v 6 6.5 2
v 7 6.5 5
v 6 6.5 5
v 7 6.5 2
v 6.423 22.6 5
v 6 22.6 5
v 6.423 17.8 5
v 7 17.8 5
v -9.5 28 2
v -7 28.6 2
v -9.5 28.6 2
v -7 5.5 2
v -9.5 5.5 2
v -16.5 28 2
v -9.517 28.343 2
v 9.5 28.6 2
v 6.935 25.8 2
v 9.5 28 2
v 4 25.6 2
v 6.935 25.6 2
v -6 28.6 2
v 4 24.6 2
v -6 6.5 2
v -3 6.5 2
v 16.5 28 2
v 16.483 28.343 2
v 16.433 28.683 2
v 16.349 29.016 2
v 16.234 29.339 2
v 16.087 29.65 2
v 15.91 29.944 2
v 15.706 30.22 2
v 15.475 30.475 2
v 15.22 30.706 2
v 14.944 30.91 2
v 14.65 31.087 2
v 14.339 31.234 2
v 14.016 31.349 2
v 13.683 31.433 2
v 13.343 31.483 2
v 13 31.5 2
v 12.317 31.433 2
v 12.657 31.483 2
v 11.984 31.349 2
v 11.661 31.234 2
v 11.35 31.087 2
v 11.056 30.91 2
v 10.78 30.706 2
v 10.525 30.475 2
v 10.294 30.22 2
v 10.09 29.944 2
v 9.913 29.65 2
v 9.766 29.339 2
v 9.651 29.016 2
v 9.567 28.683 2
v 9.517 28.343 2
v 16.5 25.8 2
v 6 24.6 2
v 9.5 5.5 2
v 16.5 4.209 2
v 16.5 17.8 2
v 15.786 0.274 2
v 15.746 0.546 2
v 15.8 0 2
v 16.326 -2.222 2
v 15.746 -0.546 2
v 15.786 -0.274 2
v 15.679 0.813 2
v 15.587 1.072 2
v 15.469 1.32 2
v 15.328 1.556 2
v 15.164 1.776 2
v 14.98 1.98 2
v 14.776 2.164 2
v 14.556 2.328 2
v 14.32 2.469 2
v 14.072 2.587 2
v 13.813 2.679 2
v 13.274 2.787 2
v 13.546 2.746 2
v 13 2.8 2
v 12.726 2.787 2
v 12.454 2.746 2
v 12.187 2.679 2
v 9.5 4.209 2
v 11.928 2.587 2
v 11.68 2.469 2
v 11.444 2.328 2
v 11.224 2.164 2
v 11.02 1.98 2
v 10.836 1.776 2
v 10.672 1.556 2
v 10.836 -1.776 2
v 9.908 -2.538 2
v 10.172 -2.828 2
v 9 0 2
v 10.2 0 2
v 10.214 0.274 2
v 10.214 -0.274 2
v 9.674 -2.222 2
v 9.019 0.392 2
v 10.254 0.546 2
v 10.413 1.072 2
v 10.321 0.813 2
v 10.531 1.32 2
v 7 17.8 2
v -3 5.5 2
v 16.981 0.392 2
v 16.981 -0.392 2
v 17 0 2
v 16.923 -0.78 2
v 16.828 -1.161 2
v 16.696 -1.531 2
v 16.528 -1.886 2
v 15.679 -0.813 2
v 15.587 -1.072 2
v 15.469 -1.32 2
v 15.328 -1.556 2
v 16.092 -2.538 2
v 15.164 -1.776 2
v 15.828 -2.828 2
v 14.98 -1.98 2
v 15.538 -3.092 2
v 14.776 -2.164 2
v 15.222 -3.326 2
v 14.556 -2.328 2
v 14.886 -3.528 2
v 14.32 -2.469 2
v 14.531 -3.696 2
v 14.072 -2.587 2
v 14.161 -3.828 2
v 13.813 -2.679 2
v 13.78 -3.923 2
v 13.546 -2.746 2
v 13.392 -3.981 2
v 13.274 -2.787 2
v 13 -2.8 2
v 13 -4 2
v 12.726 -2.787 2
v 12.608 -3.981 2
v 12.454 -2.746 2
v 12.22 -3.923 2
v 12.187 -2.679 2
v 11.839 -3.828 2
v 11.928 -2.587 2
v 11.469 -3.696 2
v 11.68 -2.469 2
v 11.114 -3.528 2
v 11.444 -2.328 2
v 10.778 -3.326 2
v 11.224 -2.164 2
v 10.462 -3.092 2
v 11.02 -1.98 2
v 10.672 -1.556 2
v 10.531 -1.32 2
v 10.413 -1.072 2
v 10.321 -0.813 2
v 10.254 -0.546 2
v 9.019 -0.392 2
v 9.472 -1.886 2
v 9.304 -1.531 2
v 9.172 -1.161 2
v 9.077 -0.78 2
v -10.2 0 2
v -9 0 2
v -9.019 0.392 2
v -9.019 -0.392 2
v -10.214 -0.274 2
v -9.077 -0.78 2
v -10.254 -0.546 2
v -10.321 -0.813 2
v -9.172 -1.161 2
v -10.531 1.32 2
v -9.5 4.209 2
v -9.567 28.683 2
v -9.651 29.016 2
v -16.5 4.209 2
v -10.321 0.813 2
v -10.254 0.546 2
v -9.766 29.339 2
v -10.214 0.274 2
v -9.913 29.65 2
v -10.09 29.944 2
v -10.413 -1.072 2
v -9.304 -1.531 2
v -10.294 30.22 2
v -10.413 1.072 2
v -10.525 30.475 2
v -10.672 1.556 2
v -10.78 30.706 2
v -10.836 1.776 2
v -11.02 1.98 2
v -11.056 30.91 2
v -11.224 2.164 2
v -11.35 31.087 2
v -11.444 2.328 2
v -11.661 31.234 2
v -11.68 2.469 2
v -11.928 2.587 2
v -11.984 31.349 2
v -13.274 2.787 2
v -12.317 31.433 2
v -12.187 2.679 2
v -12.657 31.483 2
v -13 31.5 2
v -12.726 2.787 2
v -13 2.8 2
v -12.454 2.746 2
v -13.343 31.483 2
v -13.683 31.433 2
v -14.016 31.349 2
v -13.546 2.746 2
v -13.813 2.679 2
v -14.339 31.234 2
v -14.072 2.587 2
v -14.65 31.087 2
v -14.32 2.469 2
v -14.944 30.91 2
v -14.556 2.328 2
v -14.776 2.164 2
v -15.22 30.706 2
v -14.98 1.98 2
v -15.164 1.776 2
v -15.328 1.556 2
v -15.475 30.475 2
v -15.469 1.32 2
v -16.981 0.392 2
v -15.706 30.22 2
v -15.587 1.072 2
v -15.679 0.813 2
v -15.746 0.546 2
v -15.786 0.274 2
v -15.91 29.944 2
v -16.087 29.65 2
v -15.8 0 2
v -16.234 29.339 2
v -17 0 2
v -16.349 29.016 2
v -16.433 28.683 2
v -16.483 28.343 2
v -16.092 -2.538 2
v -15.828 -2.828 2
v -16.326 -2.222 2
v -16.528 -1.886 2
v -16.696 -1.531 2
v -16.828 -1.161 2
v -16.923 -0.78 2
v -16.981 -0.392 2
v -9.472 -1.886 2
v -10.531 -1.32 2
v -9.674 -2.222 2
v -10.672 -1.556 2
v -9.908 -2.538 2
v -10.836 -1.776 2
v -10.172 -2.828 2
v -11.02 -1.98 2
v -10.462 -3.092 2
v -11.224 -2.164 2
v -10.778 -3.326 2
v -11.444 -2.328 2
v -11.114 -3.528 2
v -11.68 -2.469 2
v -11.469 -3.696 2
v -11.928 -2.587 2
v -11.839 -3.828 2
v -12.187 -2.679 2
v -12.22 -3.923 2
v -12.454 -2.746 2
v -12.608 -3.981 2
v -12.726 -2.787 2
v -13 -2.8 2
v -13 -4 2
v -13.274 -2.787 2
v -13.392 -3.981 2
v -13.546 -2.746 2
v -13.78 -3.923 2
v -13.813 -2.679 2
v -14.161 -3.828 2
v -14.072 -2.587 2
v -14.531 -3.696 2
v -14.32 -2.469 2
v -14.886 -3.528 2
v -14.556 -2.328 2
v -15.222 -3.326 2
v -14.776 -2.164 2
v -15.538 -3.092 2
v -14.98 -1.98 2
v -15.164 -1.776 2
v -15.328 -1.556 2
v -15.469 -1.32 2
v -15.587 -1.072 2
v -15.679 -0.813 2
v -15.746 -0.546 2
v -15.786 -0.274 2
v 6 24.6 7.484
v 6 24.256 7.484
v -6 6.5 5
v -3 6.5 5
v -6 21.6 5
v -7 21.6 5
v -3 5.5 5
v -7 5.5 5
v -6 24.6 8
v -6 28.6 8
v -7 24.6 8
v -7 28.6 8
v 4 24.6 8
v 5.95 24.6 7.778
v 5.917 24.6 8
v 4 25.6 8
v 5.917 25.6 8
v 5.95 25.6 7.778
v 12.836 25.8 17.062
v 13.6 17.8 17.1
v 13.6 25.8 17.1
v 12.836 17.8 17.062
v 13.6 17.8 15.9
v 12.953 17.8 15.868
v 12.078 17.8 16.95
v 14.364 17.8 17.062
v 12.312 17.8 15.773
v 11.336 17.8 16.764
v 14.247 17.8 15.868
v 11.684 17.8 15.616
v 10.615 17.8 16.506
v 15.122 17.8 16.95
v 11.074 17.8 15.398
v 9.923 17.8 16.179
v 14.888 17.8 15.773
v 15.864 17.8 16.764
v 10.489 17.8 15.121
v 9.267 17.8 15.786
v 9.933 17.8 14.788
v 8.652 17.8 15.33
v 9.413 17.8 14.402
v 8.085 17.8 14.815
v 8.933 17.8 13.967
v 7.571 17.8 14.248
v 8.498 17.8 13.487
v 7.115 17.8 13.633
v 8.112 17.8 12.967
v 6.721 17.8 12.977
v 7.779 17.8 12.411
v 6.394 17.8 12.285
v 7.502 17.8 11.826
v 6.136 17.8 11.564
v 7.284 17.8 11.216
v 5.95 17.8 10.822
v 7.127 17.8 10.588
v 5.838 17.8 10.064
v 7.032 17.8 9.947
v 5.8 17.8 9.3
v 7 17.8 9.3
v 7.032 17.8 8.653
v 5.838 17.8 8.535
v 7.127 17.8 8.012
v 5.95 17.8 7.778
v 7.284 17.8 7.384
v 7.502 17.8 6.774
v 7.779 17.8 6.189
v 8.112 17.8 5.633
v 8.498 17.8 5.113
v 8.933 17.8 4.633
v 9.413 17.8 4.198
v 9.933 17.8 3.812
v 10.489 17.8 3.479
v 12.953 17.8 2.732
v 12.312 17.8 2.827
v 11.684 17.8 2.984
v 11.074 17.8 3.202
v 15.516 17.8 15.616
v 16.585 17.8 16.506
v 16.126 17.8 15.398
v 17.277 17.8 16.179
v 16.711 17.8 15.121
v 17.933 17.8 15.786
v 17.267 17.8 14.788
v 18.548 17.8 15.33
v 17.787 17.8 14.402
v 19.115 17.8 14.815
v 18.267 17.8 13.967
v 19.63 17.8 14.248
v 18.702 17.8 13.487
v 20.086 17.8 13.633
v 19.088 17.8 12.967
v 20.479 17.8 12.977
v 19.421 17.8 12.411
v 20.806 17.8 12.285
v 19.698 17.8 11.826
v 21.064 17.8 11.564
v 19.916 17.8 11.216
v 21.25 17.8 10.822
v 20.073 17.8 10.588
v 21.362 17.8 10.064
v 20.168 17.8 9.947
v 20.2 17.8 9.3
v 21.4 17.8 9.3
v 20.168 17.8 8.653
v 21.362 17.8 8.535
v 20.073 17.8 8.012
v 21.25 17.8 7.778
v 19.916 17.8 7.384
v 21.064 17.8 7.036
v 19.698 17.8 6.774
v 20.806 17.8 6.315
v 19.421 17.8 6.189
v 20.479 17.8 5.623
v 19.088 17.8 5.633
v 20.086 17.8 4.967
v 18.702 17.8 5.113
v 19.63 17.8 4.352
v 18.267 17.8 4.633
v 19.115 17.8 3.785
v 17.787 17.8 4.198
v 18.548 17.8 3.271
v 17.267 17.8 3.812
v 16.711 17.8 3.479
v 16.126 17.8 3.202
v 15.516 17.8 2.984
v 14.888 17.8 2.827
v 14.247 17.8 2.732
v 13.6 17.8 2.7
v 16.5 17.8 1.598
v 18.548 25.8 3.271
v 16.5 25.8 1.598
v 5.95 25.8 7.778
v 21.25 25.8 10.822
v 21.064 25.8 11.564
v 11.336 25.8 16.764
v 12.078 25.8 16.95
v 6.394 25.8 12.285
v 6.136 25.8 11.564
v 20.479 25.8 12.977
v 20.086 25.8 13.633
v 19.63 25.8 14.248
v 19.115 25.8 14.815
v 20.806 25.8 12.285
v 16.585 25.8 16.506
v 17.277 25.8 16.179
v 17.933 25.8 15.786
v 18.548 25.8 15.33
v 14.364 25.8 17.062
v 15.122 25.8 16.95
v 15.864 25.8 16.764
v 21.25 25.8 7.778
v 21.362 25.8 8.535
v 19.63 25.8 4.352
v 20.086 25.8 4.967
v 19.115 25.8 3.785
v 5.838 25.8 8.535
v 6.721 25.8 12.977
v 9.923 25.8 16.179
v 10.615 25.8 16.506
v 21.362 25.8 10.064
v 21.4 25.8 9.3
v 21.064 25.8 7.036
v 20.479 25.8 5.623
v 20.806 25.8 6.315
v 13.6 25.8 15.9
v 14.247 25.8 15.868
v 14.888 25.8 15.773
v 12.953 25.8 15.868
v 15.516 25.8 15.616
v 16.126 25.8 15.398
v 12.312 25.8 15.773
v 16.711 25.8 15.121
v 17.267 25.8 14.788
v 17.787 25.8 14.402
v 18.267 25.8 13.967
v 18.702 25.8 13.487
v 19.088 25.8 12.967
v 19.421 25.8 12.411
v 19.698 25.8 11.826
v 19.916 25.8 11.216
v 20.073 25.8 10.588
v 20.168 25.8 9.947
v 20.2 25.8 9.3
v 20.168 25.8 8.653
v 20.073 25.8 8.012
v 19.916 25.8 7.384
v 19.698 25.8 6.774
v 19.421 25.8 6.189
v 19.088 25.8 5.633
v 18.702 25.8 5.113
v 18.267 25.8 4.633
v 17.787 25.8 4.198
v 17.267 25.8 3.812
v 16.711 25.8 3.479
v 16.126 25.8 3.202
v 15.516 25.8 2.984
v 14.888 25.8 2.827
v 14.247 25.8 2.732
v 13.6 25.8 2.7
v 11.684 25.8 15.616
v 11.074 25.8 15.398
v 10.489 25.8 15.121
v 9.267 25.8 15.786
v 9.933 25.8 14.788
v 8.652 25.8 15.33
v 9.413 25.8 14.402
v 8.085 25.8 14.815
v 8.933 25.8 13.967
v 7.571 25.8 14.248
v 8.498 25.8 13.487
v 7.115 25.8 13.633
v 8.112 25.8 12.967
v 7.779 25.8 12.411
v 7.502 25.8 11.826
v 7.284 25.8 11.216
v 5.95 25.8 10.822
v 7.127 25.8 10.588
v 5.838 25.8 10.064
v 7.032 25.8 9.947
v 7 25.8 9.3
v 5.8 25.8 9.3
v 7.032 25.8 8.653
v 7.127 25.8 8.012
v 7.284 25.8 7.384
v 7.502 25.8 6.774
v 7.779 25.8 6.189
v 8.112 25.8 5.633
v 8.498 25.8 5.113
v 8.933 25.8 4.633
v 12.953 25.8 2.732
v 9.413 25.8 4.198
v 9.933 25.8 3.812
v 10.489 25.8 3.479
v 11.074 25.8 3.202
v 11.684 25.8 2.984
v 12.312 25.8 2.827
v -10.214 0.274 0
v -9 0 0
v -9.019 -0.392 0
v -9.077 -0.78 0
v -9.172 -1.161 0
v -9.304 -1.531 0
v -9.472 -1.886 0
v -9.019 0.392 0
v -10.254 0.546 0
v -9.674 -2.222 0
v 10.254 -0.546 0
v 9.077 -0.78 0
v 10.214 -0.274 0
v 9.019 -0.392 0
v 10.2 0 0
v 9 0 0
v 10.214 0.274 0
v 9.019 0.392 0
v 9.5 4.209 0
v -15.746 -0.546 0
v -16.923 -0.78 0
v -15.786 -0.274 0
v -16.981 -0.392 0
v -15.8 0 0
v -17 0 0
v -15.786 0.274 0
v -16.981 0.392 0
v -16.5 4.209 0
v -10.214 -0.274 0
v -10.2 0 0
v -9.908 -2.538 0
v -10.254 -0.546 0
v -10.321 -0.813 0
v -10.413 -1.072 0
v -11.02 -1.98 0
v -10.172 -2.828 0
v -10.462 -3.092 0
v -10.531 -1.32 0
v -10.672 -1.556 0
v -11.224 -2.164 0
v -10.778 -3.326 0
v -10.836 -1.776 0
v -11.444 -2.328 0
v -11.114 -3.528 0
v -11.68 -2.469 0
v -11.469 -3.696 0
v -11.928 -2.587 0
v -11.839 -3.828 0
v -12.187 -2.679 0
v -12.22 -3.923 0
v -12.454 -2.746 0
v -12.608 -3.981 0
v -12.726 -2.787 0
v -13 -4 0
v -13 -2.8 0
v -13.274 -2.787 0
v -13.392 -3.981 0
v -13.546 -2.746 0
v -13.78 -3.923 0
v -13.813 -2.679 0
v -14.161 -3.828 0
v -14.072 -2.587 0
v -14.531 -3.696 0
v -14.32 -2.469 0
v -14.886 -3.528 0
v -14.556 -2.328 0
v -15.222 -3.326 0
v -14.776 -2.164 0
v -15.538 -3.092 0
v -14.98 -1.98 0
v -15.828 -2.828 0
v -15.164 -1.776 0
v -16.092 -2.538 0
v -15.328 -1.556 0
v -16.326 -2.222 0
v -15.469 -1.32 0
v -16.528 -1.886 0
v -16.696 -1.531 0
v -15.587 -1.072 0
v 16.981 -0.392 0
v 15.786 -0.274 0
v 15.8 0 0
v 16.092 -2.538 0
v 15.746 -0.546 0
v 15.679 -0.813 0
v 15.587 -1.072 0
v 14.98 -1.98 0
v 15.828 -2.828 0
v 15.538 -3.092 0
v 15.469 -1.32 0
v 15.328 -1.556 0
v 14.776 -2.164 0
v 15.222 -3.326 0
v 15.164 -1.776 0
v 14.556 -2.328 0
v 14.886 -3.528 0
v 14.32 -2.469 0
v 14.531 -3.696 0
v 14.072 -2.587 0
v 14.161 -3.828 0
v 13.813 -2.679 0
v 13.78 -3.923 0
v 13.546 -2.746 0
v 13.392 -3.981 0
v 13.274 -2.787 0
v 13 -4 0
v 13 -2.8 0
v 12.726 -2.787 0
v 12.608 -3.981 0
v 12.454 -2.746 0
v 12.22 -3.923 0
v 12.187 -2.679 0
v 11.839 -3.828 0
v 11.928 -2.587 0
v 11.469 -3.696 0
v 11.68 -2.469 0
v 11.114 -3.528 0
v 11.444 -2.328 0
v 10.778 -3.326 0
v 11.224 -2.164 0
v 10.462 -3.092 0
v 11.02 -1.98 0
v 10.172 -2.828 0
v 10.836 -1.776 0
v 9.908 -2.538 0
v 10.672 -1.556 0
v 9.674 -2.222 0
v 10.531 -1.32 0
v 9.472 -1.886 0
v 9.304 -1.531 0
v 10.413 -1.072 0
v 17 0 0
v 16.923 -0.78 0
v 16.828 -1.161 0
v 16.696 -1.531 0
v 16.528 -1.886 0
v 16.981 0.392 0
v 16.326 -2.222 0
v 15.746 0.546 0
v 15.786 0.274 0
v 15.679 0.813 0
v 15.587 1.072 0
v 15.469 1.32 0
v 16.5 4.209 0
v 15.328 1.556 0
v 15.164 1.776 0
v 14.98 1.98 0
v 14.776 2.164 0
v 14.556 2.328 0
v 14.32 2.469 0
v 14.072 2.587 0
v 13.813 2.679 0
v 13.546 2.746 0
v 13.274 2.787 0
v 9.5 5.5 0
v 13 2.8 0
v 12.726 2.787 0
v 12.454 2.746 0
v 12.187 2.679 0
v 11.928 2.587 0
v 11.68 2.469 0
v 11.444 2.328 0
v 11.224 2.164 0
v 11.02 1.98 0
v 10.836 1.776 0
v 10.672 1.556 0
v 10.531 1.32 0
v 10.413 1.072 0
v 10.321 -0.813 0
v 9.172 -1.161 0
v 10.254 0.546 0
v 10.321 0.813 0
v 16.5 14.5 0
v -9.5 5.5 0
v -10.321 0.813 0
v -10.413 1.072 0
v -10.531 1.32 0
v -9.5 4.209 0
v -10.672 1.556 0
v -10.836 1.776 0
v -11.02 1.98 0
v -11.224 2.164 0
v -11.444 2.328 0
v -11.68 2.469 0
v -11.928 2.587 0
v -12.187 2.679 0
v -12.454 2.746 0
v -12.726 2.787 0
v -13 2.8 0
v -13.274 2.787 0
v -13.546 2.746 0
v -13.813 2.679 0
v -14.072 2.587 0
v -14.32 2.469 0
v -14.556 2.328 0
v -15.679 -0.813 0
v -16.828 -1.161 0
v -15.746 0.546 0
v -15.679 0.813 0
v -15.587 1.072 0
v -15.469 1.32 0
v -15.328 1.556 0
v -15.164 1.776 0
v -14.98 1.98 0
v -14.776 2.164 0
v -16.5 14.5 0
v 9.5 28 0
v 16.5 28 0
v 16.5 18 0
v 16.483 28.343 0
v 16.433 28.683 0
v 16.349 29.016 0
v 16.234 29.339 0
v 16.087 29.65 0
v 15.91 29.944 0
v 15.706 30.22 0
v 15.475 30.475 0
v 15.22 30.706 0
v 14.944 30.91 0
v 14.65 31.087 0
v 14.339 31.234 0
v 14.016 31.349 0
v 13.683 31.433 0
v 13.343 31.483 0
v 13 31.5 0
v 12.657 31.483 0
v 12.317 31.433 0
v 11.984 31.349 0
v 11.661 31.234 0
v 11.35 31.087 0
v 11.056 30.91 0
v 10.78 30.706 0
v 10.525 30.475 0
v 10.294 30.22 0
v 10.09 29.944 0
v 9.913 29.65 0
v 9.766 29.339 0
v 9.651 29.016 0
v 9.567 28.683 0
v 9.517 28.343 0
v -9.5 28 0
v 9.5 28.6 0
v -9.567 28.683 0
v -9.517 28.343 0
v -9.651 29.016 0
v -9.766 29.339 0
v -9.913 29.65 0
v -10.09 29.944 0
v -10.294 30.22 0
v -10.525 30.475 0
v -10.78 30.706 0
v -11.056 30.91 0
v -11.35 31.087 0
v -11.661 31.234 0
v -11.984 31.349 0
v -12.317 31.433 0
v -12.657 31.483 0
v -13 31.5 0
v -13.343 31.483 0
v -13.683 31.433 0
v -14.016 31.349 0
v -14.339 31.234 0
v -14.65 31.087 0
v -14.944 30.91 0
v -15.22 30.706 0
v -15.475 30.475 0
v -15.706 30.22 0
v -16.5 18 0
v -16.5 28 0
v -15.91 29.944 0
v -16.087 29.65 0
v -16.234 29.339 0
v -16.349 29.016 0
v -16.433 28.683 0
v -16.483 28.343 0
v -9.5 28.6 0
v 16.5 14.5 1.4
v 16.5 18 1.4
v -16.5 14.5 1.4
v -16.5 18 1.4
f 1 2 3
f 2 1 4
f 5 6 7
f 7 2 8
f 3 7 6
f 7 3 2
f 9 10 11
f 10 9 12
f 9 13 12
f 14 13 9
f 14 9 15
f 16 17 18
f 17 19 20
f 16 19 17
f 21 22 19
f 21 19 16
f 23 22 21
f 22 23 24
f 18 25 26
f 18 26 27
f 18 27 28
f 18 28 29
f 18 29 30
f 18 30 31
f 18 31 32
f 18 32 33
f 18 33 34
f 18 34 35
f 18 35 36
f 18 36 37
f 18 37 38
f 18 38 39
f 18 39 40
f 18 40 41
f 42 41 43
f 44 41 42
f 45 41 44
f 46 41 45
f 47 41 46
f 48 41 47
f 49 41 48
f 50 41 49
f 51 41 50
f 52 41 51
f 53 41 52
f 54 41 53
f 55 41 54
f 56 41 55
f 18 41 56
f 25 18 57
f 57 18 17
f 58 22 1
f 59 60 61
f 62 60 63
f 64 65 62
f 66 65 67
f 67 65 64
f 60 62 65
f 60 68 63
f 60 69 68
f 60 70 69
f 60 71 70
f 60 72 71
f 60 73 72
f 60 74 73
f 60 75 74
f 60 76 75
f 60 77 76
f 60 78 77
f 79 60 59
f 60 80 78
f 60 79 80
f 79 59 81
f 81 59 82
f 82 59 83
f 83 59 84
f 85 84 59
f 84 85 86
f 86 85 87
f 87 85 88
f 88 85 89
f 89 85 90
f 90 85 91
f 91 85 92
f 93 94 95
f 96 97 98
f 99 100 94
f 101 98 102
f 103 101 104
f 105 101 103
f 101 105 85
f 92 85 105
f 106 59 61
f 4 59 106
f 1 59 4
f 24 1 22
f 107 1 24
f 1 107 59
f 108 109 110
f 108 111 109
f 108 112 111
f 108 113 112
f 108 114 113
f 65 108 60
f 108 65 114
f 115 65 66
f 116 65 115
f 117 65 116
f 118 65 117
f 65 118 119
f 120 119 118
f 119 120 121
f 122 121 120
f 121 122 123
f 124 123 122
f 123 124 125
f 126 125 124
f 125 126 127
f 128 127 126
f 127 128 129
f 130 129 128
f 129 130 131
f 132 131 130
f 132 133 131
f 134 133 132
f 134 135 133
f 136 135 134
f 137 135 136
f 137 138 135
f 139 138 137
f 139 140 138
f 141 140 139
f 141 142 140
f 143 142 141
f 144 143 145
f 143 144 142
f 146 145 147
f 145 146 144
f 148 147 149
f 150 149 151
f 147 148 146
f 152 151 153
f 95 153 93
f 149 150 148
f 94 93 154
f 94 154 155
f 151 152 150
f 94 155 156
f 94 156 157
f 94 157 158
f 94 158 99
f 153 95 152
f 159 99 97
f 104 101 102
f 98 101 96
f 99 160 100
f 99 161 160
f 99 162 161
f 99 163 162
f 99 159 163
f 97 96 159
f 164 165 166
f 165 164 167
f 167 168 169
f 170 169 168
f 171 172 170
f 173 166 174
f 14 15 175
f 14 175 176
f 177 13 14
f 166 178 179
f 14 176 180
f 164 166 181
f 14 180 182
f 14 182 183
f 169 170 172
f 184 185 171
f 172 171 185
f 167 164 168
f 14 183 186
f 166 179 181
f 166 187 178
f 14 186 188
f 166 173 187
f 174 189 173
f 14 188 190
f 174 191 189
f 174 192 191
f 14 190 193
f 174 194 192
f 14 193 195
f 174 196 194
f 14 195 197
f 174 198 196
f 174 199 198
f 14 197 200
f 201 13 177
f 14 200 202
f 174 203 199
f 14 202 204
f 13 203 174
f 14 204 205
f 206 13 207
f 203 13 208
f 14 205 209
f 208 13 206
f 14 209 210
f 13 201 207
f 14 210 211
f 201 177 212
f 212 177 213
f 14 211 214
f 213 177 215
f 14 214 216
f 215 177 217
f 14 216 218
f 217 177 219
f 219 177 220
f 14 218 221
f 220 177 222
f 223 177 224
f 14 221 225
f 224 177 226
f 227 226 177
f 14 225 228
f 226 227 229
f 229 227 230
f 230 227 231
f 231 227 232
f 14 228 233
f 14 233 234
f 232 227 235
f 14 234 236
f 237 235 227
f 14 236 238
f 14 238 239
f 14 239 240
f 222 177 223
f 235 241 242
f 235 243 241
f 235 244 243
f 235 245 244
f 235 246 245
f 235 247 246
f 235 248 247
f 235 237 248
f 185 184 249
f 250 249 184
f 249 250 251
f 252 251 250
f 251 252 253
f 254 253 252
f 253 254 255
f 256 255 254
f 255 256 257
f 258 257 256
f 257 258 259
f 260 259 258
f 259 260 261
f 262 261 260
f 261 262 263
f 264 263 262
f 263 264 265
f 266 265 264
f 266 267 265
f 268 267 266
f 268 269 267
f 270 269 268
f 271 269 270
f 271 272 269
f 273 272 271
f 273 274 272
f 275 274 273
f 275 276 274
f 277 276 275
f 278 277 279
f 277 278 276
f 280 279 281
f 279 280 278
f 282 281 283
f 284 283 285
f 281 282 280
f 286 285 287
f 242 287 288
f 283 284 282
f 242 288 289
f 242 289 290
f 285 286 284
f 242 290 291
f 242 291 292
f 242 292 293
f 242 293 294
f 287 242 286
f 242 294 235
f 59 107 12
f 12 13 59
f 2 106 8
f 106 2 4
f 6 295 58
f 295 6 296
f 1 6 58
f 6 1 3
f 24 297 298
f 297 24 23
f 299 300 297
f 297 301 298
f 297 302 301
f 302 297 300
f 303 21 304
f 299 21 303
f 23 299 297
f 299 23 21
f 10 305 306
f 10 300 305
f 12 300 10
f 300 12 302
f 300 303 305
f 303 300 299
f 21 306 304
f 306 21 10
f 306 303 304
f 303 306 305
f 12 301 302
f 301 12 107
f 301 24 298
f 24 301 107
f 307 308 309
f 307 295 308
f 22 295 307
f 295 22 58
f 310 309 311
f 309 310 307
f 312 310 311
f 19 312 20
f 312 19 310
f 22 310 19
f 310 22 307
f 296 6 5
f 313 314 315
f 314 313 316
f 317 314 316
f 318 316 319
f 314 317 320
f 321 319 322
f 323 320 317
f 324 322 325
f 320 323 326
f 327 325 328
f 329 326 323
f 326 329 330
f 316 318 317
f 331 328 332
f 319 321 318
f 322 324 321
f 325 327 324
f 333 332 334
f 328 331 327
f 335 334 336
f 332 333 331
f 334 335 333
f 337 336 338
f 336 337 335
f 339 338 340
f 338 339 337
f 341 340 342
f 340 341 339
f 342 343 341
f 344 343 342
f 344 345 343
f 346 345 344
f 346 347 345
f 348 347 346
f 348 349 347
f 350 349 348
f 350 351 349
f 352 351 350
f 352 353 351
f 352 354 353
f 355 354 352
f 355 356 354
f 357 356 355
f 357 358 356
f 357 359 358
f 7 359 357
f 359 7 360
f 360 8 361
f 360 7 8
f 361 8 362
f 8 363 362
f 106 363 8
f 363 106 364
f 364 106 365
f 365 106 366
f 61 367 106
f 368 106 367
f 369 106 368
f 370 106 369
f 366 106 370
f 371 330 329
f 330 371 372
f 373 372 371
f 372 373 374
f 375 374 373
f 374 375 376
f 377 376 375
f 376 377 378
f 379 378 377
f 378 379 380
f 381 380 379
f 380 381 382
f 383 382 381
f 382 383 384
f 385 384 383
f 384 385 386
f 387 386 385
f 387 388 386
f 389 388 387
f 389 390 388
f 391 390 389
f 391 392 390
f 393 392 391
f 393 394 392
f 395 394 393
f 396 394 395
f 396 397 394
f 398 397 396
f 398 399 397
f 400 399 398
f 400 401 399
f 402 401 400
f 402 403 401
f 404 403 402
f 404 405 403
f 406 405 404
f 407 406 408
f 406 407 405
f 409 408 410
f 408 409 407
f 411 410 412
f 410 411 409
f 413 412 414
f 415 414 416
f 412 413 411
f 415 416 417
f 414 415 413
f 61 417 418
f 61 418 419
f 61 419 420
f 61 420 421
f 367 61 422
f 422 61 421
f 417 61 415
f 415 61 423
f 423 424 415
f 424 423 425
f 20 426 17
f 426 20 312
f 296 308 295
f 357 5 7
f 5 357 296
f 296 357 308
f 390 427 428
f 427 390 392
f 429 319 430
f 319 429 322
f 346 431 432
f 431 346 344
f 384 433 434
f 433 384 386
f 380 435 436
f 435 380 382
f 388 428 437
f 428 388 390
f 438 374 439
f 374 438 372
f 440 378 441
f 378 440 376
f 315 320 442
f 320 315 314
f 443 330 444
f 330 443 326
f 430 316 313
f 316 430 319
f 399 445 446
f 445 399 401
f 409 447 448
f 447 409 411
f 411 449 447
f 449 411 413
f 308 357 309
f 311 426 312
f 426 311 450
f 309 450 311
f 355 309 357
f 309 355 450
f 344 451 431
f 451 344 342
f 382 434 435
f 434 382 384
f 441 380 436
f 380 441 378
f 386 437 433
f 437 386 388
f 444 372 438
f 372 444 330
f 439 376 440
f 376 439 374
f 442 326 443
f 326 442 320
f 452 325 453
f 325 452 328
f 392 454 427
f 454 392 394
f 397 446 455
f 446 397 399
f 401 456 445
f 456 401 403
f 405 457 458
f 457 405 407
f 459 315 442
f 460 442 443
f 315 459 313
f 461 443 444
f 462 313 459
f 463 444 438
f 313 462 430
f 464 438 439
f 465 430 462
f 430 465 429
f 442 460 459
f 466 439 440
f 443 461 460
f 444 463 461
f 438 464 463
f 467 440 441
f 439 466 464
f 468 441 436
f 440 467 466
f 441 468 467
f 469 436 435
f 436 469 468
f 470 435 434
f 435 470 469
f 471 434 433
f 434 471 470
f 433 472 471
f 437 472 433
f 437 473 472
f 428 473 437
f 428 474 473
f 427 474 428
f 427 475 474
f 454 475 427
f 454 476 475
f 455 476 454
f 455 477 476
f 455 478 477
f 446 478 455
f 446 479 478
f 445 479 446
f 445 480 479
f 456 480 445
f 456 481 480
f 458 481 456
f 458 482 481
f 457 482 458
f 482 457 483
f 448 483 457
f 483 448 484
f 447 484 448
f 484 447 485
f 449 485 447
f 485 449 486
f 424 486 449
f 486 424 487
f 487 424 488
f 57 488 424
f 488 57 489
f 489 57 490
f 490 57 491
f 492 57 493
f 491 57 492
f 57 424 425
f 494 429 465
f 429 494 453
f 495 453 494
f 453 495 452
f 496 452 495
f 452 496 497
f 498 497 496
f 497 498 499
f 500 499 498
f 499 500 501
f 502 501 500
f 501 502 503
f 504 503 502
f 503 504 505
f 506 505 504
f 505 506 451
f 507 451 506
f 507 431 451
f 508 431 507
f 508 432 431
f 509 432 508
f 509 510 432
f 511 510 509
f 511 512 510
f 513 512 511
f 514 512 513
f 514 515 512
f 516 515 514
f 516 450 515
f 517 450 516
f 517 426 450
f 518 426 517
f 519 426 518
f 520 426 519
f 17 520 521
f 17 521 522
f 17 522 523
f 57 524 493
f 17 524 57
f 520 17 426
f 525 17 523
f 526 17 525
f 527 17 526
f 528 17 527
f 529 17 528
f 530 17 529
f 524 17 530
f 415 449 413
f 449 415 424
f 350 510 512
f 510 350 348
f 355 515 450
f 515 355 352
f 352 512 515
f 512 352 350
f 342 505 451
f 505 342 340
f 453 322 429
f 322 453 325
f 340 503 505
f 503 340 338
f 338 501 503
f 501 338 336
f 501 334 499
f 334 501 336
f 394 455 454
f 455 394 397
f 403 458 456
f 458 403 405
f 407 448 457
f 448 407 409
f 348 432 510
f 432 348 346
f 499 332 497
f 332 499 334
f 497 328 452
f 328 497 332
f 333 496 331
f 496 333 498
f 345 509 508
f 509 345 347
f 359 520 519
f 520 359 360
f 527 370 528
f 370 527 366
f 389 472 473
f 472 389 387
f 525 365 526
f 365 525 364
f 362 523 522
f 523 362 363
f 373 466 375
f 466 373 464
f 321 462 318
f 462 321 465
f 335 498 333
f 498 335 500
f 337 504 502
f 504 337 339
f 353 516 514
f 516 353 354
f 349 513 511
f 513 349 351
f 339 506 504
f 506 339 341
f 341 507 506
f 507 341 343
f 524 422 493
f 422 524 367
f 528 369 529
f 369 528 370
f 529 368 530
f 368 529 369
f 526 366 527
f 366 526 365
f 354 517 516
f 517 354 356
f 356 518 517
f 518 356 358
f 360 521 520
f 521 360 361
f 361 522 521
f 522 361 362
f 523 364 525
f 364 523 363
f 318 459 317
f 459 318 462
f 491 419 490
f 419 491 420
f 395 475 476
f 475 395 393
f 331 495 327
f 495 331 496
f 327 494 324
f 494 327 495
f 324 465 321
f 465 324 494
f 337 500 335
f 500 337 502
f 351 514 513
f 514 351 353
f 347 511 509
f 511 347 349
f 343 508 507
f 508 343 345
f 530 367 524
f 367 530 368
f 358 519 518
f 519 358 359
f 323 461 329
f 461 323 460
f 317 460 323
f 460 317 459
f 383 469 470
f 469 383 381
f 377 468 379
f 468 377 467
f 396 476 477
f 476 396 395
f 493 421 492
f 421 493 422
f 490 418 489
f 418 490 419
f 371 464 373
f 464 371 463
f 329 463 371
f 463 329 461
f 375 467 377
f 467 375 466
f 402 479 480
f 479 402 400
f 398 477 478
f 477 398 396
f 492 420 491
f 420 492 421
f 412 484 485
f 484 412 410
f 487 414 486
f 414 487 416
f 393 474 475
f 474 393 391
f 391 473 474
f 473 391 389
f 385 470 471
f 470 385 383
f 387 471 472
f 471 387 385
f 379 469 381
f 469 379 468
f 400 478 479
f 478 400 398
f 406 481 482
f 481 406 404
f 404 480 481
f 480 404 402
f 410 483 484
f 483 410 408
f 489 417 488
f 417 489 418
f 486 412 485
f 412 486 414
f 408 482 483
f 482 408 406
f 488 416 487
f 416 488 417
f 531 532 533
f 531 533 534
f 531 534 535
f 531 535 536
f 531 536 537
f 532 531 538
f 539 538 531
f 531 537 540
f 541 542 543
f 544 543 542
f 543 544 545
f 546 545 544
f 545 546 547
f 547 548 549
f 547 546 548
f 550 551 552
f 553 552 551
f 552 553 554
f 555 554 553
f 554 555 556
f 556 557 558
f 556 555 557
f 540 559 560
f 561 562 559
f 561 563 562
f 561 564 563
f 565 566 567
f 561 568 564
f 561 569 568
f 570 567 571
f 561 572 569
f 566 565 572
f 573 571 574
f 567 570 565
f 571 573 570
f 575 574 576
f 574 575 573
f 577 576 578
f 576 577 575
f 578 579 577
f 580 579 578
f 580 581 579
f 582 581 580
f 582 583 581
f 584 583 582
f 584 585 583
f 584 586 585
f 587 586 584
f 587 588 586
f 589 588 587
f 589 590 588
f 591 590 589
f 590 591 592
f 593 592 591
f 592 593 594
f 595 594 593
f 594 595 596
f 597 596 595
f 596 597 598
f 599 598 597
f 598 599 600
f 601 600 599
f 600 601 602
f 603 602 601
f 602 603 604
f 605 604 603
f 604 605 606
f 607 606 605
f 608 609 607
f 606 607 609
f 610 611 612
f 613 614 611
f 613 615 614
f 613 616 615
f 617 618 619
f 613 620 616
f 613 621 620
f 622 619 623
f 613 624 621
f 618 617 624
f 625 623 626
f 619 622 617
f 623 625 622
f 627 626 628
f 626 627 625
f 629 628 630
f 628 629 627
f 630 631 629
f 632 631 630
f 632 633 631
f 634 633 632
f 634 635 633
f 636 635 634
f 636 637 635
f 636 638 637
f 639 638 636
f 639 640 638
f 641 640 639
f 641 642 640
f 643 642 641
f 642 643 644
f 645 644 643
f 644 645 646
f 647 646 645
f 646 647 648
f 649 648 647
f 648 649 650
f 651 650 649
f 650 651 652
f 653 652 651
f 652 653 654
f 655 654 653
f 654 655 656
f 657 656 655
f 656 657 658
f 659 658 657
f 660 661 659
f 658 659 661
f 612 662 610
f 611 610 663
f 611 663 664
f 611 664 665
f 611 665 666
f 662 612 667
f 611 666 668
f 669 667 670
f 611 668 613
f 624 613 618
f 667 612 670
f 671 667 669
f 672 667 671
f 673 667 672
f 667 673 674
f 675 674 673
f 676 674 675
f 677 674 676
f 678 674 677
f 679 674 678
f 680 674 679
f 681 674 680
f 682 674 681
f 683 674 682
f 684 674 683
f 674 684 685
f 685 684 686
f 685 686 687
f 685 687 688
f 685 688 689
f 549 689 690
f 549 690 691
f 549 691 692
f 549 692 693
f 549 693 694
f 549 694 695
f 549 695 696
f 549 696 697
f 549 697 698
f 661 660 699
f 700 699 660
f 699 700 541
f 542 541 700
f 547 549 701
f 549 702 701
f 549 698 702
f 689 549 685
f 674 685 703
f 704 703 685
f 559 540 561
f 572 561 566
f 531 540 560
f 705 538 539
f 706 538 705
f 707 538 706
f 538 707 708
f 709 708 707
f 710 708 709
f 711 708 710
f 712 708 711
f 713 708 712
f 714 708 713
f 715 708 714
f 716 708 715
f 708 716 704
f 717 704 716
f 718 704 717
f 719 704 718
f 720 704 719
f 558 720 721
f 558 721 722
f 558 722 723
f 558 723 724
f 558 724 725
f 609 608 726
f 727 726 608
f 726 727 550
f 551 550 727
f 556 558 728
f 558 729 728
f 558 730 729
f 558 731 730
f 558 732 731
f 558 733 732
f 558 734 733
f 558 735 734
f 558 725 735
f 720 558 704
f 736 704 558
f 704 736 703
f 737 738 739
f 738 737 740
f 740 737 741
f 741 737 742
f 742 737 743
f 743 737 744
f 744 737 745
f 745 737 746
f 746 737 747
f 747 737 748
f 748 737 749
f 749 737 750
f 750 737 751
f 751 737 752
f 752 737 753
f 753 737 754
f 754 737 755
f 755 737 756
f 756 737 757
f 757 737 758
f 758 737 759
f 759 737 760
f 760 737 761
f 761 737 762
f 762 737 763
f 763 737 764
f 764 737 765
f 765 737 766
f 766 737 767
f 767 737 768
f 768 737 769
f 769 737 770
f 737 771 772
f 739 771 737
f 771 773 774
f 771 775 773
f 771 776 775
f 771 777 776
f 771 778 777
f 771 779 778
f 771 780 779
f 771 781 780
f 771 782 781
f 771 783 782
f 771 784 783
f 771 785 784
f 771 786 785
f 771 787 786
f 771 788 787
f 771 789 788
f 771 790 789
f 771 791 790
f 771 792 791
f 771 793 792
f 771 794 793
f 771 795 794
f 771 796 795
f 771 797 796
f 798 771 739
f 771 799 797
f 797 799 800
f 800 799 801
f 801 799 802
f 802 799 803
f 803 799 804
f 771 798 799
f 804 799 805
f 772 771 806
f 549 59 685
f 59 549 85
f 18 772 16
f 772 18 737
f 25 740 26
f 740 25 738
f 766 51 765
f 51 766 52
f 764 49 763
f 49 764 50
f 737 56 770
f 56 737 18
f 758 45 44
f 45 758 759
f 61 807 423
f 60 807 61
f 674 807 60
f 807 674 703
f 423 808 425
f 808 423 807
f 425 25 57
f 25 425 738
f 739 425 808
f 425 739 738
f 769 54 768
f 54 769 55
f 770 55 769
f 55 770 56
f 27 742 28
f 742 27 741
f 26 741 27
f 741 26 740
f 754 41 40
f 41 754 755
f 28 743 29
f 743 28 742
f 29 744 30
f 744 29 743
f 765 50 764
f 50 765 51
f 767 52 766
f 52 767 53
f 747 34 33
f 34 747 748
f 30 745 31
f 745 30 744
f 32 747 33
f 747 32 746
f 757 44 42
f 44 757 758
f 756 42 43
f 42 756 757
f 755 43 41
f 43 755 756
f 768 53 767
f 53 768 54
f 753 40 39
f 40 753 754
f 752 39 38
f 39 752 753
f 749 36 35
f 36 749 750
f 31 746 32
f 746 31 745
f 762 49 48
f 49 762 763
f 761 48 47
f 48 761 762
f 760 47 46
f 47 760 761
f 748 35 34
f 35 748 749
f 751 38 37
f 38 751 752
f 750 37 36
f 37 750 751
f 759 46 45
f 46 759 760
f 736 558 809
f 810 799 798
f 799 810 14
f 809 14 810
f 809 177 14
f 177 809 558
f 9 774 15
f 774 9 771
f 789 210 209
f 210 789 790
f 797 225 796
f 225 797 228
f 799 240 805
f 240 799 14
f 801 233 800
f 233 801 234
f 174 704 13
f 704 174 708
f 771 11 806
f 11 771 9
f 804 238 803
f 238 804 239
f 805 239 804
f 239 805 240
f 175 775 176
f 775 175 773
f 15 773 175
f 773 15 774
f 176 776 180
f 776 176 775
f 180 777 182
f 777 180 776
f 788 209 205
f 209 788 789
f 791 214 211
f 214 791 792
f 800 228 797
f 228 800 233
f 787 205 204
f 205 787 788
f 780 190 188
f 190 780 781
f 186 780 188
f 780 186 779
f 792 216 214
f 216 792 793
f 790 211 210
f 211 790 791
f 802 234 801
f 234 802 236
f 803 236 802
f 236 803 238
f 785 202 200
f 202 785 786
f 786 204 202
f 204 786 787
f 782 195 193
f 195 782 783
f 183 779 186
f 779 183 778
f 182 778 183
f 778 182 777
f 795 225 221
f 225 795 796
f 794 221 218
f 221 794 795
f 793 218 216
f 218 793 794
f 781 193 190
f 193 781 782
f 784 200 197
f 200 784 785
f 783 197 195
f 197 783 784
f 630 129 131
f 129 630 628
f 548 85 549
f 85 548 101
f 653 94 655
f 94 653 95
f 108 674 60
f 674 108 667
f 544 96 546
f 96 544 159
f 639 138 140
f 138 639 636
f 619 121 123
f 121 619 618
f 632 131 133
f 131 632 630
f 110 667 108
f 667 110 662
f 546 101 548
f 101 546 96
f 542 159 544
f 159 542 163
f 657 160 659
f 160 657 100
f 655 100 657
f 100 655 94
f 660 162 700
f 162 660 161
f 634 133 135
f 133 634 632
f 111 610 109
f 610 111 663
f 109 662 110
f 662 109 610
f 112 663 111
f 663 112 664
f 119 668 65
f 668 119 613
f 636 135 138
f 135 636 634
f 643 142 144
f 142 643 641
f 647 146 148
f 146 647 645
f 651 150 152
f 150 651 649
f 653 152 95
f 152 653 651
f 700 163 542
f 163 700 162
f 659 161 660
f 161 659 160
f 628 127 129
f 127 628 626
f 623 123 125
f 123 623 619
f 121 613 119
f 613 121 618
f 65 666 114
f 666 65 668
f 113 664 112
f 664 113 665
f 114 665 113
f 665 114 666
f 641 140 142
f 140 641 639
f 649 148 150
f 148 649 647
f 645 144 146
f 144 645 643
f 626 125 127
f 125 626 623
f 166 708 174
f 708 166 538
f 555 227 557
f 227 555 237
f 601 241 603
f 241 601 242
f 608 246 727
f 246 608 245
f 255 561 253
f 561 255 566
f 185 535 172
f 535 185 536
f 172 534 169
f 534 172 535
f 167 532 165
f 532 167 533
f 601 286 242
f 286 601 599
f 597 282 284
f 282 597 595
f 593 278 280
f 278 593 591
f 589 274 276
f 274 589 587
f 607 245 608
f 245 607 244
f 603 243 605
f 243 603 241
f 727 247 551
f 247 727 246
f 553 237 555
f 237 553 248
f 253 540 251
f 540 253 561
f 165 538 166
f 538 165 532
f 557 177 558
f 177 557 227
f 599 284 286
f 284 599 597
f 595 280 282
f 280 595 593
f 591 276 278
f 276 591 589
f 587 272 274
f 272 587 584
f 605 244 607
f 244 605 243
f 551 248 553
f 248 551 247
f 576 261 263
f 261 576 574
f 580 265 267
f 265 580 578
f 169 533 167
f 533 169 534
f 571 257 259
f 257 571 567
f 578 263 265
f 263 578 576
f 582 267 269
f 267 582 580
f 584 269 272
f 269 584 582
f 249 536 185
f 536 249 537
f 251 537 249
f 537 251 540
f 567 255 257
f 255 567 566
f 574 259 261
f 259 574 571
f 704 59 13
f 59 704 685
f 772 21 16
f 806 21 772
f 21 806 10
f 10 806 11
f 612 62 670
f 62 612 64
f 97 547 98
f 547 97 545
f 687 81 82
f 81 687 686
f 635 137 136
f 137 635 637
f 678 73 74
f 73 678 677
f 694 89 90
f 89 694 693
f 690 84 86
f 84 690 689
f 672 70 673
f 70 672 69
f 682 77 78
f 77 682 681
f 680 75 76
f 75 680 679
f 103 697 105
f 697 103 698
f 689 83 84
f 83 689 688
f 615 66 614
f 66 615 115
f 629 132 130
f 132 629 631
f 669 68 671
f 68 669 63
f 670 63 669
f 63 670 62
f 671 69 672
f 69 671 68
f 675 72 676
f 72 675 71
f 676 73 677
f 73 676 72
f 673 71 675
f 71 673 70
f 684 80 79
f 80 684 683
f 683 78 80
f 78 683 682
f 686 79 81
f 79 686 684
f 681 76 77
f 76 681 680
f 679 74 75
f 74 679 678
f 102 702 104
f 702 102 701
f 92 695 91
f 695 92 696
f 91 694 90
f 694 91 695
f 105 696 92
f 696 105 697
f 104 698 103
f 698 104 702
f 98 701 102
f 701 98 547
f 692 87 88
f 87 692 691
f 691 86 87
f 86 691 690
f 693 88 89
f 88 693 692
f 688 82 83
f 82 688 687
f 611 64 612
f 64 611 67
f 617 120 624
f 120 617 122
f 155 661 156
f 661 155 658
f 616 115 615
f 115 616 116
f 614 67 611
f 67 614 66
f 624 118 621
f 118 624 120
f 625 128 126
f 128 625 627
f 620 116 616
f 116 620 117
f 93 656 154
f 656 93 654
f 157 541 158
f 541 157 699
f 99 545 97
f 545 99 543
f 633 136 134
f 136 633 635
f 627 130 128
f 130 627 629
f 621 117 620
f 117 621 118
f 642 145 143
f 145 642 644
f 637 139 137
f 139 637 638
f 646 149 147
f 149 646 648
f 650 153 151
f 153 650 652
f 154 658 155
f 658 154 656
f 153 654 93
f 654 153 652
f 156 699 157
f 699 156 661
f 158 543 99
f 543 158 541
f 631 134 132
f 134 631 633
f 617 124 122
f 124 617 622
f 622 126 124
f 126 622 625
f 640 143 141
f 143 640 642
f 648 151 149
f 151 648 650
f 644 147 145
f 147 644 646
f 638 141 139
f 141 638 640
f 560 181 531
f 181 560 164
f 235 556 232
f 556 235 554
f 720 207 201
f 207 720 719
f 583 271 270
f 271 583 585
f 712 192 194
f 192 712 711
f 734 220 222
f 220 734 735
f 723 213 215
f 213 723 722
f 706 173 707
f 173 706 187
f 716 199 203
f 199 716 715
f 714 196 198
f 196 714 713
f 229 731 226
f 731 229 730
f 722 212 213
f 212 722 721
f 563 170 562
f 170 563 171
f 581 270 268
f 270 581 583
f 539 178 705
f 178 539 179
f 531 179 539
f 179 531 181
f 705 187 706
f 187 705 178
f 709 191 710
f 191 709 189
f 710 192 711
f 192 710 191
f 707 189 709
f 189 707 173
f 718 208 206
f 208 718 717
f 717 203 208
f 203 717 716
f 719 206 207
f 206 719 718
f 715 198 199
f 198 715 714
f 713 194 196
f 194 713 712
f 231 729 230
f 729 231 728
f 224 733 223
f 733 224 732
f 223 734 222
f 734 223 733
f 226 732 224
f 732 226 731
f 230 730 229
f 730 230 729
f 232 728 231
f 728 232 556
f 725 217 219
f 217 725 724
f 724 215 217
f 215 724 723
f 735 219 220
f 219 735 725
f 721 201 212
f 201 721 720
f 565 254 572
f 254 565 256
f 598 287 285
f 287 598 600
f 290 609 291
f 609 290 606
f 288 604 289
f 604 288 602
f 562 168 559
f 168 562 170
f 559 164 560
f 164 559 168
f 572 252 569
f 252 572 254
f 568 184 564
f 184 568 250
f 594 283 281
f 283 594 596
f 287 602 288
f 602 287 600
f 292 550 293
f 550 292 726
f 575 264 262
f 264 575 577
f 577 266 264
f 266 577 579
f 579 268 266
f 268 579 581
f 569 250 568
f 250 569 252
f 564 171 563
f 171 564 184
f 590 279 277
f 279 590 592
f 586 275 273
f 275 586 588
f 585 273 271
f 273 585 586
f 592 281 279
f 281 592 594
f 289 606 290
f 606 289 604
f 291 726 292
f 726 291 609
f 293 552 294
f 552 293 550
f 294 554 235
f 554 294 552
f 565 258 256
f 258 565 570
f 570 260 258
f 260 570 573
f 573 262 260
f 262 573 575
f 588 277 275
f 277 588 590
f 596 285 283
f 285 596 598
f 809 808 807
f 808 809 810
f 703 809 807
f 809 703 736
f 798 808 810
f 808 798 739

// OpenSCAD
/**
 * Frsky R-XSR mount for Armattan Chameleon (w/ cap mount)
 * 
 * This mount is intended for the Armattan Chameleon and holds
 * a naked R-XSR receiver (without heat shrink) and additionally
 * a cap for noise reduction (default ring fits Panasonic 
 * FR-series 1000uF 35V cap).
 *
 * You need to replace the back standoffs with regular standoffs
 * to fit this mount.
 */ 
$fn = 64;

washer_diameter = 7;
strut_height = 2;
standoff_diameter = 5.6;
hole_spacing_back = 26;
washer_diameter = 7;
bend_length = 8;


// RX
rx_width = 12 ;
rx_length = 16.1;
rx_bevel_height = 3;
rx_bevel_width = 1;
zip_tie_width = 3.5;
zip_tie_height = 1.4;

cap_diameter = 13.2;
cap_retention_height = 8;

// standoff diameter + ring (uses a fixed value because 8.5 seems to be the magic number
// to make everything flush with the back end of the frame
sodpr = standoff_diameter + 2.4; // standoff_diameter + 2.4
// cap diameter plus ring
cdpr = cap_diameter + 2.4;
// hole spacing back half
hsbh = hole_spacing_back / 2;
// space between back struts
strut_spacing = hole_spacing_back - washer_diameter;
// bend length half
blh = bend_length / 2;
// strut spacing half
ssh = strut_spacing / 2;

module rx_mount() {

    // rx module mount
    difference() {
        union() {
            // transition struts
            hull() {
                translate([hsbh, 0, 0]) cylinder(d = washer_diameter, h = strut_height);
                translate([hsbh, 28, 0]) cylinder(d = washer_diameter, h = strut_height);
            }
            hull() {
                translate([-hsbh, 0, 0]) cylinder(d = washer_diameter, h = strut_height);
                translate([-hsbh, 28, 0]) cylinder(d = washer_diameter, h = strut_height);
            }            
            
            hull() {
                translate([hsbh, 0, 0]) cylinder(d = sodpr, h = strut_height);
                translate([hsbh, blh, 0]) cylinder(d = washer_diameter, h = strut_height);
            }
            hull() {
                translate([-hsbh, 0, 0]) cylinder(d = sodpr, h = strut_height);
                translate([-hsbh, blh, 0]) cylinder(d = washer_diameter, h = strut_height);
            }
            
            translate([-ssh, ssh - sodpr/2, 0]) cube([strut_spacing, rx_length + 7, 2]);
            
            // bevels 
            translate([rx_width/2 + rx_bevel_width, ssh - sodpr/2 + 1, 2]) rotate([0, 0, 90]) {
                cube([rx_length, rx_bevel_width, rx_bevel_height]);
                translate([0, rx_width + rx_bevel_width, 0]) cube([rx_length, rx_bevel_width, rx_bevel_height]);
                hull() {
                    translate([rx_length - 1, rx_width + rx_bevel_width, 0]) cube([2, rx_bevel_width, rx_bevel_height]);
                    translate([rx_length + 2, rx_width + rx_bevel_width, 0]) cube([4, rx_bevel_width, 2 * rx_bevel_height]);
                }
                translate([-rx_bevel_width, rx_width + rx_bevel_width - 3, 0]) cube([rx_bevel_width, 4, rx_bevel_height]);
                translate([rx_length + 2, 0, 0]) cube([rx_bevel_width, 3, 2 * rx_bevel_height]);
                hull() {
                    translate([rx_length + 2, 0, 0]) cube([rx_bevel_width, rx_bevel_width, 2 * rx_bevel_height]);
                    translate([rx_length, 0, 0]) cube([rx_bevel_width, rx_bevel_width, rx_bevel_height]);
                }    
            }
            
            translate([hole_spacing_back/2 + 0.6, 25.8, cdpr/2 + strut_height * 0.75]) 
            rotate([90, -90, 0]) difference() {
                hull() {
                    cylinder(d = cdpr, h = cap_retention_height);
                    translate([-cdpr /2, -cdpr/2 * 0.6 + 1.9, 0]) cube([1, cdpr * 0.6, cap_retention_height]);
                }
                translate([0, 0, -0.01]) cylinder(d = cap_diameter, h = cap_retention_height + 0.02);
            }
        }
        // holes for standoffs
        translate([hsbh, 0, -0.01]) cylinder(d = standoff_diameter, h = strut_height + 0.02);
        translate([-hsbh, 0, -0.01]) cylinder(d = standoff_diameter, h = strut_height + 0.02);
        
        translate([-strut_spacing, sodpr/2 + 14 - zip_tie_width, -0.01]) cube([strut_spacing * 2, zip_tie_width, zip_tie_height + 0.01]);
    }
}

rx_mount();
